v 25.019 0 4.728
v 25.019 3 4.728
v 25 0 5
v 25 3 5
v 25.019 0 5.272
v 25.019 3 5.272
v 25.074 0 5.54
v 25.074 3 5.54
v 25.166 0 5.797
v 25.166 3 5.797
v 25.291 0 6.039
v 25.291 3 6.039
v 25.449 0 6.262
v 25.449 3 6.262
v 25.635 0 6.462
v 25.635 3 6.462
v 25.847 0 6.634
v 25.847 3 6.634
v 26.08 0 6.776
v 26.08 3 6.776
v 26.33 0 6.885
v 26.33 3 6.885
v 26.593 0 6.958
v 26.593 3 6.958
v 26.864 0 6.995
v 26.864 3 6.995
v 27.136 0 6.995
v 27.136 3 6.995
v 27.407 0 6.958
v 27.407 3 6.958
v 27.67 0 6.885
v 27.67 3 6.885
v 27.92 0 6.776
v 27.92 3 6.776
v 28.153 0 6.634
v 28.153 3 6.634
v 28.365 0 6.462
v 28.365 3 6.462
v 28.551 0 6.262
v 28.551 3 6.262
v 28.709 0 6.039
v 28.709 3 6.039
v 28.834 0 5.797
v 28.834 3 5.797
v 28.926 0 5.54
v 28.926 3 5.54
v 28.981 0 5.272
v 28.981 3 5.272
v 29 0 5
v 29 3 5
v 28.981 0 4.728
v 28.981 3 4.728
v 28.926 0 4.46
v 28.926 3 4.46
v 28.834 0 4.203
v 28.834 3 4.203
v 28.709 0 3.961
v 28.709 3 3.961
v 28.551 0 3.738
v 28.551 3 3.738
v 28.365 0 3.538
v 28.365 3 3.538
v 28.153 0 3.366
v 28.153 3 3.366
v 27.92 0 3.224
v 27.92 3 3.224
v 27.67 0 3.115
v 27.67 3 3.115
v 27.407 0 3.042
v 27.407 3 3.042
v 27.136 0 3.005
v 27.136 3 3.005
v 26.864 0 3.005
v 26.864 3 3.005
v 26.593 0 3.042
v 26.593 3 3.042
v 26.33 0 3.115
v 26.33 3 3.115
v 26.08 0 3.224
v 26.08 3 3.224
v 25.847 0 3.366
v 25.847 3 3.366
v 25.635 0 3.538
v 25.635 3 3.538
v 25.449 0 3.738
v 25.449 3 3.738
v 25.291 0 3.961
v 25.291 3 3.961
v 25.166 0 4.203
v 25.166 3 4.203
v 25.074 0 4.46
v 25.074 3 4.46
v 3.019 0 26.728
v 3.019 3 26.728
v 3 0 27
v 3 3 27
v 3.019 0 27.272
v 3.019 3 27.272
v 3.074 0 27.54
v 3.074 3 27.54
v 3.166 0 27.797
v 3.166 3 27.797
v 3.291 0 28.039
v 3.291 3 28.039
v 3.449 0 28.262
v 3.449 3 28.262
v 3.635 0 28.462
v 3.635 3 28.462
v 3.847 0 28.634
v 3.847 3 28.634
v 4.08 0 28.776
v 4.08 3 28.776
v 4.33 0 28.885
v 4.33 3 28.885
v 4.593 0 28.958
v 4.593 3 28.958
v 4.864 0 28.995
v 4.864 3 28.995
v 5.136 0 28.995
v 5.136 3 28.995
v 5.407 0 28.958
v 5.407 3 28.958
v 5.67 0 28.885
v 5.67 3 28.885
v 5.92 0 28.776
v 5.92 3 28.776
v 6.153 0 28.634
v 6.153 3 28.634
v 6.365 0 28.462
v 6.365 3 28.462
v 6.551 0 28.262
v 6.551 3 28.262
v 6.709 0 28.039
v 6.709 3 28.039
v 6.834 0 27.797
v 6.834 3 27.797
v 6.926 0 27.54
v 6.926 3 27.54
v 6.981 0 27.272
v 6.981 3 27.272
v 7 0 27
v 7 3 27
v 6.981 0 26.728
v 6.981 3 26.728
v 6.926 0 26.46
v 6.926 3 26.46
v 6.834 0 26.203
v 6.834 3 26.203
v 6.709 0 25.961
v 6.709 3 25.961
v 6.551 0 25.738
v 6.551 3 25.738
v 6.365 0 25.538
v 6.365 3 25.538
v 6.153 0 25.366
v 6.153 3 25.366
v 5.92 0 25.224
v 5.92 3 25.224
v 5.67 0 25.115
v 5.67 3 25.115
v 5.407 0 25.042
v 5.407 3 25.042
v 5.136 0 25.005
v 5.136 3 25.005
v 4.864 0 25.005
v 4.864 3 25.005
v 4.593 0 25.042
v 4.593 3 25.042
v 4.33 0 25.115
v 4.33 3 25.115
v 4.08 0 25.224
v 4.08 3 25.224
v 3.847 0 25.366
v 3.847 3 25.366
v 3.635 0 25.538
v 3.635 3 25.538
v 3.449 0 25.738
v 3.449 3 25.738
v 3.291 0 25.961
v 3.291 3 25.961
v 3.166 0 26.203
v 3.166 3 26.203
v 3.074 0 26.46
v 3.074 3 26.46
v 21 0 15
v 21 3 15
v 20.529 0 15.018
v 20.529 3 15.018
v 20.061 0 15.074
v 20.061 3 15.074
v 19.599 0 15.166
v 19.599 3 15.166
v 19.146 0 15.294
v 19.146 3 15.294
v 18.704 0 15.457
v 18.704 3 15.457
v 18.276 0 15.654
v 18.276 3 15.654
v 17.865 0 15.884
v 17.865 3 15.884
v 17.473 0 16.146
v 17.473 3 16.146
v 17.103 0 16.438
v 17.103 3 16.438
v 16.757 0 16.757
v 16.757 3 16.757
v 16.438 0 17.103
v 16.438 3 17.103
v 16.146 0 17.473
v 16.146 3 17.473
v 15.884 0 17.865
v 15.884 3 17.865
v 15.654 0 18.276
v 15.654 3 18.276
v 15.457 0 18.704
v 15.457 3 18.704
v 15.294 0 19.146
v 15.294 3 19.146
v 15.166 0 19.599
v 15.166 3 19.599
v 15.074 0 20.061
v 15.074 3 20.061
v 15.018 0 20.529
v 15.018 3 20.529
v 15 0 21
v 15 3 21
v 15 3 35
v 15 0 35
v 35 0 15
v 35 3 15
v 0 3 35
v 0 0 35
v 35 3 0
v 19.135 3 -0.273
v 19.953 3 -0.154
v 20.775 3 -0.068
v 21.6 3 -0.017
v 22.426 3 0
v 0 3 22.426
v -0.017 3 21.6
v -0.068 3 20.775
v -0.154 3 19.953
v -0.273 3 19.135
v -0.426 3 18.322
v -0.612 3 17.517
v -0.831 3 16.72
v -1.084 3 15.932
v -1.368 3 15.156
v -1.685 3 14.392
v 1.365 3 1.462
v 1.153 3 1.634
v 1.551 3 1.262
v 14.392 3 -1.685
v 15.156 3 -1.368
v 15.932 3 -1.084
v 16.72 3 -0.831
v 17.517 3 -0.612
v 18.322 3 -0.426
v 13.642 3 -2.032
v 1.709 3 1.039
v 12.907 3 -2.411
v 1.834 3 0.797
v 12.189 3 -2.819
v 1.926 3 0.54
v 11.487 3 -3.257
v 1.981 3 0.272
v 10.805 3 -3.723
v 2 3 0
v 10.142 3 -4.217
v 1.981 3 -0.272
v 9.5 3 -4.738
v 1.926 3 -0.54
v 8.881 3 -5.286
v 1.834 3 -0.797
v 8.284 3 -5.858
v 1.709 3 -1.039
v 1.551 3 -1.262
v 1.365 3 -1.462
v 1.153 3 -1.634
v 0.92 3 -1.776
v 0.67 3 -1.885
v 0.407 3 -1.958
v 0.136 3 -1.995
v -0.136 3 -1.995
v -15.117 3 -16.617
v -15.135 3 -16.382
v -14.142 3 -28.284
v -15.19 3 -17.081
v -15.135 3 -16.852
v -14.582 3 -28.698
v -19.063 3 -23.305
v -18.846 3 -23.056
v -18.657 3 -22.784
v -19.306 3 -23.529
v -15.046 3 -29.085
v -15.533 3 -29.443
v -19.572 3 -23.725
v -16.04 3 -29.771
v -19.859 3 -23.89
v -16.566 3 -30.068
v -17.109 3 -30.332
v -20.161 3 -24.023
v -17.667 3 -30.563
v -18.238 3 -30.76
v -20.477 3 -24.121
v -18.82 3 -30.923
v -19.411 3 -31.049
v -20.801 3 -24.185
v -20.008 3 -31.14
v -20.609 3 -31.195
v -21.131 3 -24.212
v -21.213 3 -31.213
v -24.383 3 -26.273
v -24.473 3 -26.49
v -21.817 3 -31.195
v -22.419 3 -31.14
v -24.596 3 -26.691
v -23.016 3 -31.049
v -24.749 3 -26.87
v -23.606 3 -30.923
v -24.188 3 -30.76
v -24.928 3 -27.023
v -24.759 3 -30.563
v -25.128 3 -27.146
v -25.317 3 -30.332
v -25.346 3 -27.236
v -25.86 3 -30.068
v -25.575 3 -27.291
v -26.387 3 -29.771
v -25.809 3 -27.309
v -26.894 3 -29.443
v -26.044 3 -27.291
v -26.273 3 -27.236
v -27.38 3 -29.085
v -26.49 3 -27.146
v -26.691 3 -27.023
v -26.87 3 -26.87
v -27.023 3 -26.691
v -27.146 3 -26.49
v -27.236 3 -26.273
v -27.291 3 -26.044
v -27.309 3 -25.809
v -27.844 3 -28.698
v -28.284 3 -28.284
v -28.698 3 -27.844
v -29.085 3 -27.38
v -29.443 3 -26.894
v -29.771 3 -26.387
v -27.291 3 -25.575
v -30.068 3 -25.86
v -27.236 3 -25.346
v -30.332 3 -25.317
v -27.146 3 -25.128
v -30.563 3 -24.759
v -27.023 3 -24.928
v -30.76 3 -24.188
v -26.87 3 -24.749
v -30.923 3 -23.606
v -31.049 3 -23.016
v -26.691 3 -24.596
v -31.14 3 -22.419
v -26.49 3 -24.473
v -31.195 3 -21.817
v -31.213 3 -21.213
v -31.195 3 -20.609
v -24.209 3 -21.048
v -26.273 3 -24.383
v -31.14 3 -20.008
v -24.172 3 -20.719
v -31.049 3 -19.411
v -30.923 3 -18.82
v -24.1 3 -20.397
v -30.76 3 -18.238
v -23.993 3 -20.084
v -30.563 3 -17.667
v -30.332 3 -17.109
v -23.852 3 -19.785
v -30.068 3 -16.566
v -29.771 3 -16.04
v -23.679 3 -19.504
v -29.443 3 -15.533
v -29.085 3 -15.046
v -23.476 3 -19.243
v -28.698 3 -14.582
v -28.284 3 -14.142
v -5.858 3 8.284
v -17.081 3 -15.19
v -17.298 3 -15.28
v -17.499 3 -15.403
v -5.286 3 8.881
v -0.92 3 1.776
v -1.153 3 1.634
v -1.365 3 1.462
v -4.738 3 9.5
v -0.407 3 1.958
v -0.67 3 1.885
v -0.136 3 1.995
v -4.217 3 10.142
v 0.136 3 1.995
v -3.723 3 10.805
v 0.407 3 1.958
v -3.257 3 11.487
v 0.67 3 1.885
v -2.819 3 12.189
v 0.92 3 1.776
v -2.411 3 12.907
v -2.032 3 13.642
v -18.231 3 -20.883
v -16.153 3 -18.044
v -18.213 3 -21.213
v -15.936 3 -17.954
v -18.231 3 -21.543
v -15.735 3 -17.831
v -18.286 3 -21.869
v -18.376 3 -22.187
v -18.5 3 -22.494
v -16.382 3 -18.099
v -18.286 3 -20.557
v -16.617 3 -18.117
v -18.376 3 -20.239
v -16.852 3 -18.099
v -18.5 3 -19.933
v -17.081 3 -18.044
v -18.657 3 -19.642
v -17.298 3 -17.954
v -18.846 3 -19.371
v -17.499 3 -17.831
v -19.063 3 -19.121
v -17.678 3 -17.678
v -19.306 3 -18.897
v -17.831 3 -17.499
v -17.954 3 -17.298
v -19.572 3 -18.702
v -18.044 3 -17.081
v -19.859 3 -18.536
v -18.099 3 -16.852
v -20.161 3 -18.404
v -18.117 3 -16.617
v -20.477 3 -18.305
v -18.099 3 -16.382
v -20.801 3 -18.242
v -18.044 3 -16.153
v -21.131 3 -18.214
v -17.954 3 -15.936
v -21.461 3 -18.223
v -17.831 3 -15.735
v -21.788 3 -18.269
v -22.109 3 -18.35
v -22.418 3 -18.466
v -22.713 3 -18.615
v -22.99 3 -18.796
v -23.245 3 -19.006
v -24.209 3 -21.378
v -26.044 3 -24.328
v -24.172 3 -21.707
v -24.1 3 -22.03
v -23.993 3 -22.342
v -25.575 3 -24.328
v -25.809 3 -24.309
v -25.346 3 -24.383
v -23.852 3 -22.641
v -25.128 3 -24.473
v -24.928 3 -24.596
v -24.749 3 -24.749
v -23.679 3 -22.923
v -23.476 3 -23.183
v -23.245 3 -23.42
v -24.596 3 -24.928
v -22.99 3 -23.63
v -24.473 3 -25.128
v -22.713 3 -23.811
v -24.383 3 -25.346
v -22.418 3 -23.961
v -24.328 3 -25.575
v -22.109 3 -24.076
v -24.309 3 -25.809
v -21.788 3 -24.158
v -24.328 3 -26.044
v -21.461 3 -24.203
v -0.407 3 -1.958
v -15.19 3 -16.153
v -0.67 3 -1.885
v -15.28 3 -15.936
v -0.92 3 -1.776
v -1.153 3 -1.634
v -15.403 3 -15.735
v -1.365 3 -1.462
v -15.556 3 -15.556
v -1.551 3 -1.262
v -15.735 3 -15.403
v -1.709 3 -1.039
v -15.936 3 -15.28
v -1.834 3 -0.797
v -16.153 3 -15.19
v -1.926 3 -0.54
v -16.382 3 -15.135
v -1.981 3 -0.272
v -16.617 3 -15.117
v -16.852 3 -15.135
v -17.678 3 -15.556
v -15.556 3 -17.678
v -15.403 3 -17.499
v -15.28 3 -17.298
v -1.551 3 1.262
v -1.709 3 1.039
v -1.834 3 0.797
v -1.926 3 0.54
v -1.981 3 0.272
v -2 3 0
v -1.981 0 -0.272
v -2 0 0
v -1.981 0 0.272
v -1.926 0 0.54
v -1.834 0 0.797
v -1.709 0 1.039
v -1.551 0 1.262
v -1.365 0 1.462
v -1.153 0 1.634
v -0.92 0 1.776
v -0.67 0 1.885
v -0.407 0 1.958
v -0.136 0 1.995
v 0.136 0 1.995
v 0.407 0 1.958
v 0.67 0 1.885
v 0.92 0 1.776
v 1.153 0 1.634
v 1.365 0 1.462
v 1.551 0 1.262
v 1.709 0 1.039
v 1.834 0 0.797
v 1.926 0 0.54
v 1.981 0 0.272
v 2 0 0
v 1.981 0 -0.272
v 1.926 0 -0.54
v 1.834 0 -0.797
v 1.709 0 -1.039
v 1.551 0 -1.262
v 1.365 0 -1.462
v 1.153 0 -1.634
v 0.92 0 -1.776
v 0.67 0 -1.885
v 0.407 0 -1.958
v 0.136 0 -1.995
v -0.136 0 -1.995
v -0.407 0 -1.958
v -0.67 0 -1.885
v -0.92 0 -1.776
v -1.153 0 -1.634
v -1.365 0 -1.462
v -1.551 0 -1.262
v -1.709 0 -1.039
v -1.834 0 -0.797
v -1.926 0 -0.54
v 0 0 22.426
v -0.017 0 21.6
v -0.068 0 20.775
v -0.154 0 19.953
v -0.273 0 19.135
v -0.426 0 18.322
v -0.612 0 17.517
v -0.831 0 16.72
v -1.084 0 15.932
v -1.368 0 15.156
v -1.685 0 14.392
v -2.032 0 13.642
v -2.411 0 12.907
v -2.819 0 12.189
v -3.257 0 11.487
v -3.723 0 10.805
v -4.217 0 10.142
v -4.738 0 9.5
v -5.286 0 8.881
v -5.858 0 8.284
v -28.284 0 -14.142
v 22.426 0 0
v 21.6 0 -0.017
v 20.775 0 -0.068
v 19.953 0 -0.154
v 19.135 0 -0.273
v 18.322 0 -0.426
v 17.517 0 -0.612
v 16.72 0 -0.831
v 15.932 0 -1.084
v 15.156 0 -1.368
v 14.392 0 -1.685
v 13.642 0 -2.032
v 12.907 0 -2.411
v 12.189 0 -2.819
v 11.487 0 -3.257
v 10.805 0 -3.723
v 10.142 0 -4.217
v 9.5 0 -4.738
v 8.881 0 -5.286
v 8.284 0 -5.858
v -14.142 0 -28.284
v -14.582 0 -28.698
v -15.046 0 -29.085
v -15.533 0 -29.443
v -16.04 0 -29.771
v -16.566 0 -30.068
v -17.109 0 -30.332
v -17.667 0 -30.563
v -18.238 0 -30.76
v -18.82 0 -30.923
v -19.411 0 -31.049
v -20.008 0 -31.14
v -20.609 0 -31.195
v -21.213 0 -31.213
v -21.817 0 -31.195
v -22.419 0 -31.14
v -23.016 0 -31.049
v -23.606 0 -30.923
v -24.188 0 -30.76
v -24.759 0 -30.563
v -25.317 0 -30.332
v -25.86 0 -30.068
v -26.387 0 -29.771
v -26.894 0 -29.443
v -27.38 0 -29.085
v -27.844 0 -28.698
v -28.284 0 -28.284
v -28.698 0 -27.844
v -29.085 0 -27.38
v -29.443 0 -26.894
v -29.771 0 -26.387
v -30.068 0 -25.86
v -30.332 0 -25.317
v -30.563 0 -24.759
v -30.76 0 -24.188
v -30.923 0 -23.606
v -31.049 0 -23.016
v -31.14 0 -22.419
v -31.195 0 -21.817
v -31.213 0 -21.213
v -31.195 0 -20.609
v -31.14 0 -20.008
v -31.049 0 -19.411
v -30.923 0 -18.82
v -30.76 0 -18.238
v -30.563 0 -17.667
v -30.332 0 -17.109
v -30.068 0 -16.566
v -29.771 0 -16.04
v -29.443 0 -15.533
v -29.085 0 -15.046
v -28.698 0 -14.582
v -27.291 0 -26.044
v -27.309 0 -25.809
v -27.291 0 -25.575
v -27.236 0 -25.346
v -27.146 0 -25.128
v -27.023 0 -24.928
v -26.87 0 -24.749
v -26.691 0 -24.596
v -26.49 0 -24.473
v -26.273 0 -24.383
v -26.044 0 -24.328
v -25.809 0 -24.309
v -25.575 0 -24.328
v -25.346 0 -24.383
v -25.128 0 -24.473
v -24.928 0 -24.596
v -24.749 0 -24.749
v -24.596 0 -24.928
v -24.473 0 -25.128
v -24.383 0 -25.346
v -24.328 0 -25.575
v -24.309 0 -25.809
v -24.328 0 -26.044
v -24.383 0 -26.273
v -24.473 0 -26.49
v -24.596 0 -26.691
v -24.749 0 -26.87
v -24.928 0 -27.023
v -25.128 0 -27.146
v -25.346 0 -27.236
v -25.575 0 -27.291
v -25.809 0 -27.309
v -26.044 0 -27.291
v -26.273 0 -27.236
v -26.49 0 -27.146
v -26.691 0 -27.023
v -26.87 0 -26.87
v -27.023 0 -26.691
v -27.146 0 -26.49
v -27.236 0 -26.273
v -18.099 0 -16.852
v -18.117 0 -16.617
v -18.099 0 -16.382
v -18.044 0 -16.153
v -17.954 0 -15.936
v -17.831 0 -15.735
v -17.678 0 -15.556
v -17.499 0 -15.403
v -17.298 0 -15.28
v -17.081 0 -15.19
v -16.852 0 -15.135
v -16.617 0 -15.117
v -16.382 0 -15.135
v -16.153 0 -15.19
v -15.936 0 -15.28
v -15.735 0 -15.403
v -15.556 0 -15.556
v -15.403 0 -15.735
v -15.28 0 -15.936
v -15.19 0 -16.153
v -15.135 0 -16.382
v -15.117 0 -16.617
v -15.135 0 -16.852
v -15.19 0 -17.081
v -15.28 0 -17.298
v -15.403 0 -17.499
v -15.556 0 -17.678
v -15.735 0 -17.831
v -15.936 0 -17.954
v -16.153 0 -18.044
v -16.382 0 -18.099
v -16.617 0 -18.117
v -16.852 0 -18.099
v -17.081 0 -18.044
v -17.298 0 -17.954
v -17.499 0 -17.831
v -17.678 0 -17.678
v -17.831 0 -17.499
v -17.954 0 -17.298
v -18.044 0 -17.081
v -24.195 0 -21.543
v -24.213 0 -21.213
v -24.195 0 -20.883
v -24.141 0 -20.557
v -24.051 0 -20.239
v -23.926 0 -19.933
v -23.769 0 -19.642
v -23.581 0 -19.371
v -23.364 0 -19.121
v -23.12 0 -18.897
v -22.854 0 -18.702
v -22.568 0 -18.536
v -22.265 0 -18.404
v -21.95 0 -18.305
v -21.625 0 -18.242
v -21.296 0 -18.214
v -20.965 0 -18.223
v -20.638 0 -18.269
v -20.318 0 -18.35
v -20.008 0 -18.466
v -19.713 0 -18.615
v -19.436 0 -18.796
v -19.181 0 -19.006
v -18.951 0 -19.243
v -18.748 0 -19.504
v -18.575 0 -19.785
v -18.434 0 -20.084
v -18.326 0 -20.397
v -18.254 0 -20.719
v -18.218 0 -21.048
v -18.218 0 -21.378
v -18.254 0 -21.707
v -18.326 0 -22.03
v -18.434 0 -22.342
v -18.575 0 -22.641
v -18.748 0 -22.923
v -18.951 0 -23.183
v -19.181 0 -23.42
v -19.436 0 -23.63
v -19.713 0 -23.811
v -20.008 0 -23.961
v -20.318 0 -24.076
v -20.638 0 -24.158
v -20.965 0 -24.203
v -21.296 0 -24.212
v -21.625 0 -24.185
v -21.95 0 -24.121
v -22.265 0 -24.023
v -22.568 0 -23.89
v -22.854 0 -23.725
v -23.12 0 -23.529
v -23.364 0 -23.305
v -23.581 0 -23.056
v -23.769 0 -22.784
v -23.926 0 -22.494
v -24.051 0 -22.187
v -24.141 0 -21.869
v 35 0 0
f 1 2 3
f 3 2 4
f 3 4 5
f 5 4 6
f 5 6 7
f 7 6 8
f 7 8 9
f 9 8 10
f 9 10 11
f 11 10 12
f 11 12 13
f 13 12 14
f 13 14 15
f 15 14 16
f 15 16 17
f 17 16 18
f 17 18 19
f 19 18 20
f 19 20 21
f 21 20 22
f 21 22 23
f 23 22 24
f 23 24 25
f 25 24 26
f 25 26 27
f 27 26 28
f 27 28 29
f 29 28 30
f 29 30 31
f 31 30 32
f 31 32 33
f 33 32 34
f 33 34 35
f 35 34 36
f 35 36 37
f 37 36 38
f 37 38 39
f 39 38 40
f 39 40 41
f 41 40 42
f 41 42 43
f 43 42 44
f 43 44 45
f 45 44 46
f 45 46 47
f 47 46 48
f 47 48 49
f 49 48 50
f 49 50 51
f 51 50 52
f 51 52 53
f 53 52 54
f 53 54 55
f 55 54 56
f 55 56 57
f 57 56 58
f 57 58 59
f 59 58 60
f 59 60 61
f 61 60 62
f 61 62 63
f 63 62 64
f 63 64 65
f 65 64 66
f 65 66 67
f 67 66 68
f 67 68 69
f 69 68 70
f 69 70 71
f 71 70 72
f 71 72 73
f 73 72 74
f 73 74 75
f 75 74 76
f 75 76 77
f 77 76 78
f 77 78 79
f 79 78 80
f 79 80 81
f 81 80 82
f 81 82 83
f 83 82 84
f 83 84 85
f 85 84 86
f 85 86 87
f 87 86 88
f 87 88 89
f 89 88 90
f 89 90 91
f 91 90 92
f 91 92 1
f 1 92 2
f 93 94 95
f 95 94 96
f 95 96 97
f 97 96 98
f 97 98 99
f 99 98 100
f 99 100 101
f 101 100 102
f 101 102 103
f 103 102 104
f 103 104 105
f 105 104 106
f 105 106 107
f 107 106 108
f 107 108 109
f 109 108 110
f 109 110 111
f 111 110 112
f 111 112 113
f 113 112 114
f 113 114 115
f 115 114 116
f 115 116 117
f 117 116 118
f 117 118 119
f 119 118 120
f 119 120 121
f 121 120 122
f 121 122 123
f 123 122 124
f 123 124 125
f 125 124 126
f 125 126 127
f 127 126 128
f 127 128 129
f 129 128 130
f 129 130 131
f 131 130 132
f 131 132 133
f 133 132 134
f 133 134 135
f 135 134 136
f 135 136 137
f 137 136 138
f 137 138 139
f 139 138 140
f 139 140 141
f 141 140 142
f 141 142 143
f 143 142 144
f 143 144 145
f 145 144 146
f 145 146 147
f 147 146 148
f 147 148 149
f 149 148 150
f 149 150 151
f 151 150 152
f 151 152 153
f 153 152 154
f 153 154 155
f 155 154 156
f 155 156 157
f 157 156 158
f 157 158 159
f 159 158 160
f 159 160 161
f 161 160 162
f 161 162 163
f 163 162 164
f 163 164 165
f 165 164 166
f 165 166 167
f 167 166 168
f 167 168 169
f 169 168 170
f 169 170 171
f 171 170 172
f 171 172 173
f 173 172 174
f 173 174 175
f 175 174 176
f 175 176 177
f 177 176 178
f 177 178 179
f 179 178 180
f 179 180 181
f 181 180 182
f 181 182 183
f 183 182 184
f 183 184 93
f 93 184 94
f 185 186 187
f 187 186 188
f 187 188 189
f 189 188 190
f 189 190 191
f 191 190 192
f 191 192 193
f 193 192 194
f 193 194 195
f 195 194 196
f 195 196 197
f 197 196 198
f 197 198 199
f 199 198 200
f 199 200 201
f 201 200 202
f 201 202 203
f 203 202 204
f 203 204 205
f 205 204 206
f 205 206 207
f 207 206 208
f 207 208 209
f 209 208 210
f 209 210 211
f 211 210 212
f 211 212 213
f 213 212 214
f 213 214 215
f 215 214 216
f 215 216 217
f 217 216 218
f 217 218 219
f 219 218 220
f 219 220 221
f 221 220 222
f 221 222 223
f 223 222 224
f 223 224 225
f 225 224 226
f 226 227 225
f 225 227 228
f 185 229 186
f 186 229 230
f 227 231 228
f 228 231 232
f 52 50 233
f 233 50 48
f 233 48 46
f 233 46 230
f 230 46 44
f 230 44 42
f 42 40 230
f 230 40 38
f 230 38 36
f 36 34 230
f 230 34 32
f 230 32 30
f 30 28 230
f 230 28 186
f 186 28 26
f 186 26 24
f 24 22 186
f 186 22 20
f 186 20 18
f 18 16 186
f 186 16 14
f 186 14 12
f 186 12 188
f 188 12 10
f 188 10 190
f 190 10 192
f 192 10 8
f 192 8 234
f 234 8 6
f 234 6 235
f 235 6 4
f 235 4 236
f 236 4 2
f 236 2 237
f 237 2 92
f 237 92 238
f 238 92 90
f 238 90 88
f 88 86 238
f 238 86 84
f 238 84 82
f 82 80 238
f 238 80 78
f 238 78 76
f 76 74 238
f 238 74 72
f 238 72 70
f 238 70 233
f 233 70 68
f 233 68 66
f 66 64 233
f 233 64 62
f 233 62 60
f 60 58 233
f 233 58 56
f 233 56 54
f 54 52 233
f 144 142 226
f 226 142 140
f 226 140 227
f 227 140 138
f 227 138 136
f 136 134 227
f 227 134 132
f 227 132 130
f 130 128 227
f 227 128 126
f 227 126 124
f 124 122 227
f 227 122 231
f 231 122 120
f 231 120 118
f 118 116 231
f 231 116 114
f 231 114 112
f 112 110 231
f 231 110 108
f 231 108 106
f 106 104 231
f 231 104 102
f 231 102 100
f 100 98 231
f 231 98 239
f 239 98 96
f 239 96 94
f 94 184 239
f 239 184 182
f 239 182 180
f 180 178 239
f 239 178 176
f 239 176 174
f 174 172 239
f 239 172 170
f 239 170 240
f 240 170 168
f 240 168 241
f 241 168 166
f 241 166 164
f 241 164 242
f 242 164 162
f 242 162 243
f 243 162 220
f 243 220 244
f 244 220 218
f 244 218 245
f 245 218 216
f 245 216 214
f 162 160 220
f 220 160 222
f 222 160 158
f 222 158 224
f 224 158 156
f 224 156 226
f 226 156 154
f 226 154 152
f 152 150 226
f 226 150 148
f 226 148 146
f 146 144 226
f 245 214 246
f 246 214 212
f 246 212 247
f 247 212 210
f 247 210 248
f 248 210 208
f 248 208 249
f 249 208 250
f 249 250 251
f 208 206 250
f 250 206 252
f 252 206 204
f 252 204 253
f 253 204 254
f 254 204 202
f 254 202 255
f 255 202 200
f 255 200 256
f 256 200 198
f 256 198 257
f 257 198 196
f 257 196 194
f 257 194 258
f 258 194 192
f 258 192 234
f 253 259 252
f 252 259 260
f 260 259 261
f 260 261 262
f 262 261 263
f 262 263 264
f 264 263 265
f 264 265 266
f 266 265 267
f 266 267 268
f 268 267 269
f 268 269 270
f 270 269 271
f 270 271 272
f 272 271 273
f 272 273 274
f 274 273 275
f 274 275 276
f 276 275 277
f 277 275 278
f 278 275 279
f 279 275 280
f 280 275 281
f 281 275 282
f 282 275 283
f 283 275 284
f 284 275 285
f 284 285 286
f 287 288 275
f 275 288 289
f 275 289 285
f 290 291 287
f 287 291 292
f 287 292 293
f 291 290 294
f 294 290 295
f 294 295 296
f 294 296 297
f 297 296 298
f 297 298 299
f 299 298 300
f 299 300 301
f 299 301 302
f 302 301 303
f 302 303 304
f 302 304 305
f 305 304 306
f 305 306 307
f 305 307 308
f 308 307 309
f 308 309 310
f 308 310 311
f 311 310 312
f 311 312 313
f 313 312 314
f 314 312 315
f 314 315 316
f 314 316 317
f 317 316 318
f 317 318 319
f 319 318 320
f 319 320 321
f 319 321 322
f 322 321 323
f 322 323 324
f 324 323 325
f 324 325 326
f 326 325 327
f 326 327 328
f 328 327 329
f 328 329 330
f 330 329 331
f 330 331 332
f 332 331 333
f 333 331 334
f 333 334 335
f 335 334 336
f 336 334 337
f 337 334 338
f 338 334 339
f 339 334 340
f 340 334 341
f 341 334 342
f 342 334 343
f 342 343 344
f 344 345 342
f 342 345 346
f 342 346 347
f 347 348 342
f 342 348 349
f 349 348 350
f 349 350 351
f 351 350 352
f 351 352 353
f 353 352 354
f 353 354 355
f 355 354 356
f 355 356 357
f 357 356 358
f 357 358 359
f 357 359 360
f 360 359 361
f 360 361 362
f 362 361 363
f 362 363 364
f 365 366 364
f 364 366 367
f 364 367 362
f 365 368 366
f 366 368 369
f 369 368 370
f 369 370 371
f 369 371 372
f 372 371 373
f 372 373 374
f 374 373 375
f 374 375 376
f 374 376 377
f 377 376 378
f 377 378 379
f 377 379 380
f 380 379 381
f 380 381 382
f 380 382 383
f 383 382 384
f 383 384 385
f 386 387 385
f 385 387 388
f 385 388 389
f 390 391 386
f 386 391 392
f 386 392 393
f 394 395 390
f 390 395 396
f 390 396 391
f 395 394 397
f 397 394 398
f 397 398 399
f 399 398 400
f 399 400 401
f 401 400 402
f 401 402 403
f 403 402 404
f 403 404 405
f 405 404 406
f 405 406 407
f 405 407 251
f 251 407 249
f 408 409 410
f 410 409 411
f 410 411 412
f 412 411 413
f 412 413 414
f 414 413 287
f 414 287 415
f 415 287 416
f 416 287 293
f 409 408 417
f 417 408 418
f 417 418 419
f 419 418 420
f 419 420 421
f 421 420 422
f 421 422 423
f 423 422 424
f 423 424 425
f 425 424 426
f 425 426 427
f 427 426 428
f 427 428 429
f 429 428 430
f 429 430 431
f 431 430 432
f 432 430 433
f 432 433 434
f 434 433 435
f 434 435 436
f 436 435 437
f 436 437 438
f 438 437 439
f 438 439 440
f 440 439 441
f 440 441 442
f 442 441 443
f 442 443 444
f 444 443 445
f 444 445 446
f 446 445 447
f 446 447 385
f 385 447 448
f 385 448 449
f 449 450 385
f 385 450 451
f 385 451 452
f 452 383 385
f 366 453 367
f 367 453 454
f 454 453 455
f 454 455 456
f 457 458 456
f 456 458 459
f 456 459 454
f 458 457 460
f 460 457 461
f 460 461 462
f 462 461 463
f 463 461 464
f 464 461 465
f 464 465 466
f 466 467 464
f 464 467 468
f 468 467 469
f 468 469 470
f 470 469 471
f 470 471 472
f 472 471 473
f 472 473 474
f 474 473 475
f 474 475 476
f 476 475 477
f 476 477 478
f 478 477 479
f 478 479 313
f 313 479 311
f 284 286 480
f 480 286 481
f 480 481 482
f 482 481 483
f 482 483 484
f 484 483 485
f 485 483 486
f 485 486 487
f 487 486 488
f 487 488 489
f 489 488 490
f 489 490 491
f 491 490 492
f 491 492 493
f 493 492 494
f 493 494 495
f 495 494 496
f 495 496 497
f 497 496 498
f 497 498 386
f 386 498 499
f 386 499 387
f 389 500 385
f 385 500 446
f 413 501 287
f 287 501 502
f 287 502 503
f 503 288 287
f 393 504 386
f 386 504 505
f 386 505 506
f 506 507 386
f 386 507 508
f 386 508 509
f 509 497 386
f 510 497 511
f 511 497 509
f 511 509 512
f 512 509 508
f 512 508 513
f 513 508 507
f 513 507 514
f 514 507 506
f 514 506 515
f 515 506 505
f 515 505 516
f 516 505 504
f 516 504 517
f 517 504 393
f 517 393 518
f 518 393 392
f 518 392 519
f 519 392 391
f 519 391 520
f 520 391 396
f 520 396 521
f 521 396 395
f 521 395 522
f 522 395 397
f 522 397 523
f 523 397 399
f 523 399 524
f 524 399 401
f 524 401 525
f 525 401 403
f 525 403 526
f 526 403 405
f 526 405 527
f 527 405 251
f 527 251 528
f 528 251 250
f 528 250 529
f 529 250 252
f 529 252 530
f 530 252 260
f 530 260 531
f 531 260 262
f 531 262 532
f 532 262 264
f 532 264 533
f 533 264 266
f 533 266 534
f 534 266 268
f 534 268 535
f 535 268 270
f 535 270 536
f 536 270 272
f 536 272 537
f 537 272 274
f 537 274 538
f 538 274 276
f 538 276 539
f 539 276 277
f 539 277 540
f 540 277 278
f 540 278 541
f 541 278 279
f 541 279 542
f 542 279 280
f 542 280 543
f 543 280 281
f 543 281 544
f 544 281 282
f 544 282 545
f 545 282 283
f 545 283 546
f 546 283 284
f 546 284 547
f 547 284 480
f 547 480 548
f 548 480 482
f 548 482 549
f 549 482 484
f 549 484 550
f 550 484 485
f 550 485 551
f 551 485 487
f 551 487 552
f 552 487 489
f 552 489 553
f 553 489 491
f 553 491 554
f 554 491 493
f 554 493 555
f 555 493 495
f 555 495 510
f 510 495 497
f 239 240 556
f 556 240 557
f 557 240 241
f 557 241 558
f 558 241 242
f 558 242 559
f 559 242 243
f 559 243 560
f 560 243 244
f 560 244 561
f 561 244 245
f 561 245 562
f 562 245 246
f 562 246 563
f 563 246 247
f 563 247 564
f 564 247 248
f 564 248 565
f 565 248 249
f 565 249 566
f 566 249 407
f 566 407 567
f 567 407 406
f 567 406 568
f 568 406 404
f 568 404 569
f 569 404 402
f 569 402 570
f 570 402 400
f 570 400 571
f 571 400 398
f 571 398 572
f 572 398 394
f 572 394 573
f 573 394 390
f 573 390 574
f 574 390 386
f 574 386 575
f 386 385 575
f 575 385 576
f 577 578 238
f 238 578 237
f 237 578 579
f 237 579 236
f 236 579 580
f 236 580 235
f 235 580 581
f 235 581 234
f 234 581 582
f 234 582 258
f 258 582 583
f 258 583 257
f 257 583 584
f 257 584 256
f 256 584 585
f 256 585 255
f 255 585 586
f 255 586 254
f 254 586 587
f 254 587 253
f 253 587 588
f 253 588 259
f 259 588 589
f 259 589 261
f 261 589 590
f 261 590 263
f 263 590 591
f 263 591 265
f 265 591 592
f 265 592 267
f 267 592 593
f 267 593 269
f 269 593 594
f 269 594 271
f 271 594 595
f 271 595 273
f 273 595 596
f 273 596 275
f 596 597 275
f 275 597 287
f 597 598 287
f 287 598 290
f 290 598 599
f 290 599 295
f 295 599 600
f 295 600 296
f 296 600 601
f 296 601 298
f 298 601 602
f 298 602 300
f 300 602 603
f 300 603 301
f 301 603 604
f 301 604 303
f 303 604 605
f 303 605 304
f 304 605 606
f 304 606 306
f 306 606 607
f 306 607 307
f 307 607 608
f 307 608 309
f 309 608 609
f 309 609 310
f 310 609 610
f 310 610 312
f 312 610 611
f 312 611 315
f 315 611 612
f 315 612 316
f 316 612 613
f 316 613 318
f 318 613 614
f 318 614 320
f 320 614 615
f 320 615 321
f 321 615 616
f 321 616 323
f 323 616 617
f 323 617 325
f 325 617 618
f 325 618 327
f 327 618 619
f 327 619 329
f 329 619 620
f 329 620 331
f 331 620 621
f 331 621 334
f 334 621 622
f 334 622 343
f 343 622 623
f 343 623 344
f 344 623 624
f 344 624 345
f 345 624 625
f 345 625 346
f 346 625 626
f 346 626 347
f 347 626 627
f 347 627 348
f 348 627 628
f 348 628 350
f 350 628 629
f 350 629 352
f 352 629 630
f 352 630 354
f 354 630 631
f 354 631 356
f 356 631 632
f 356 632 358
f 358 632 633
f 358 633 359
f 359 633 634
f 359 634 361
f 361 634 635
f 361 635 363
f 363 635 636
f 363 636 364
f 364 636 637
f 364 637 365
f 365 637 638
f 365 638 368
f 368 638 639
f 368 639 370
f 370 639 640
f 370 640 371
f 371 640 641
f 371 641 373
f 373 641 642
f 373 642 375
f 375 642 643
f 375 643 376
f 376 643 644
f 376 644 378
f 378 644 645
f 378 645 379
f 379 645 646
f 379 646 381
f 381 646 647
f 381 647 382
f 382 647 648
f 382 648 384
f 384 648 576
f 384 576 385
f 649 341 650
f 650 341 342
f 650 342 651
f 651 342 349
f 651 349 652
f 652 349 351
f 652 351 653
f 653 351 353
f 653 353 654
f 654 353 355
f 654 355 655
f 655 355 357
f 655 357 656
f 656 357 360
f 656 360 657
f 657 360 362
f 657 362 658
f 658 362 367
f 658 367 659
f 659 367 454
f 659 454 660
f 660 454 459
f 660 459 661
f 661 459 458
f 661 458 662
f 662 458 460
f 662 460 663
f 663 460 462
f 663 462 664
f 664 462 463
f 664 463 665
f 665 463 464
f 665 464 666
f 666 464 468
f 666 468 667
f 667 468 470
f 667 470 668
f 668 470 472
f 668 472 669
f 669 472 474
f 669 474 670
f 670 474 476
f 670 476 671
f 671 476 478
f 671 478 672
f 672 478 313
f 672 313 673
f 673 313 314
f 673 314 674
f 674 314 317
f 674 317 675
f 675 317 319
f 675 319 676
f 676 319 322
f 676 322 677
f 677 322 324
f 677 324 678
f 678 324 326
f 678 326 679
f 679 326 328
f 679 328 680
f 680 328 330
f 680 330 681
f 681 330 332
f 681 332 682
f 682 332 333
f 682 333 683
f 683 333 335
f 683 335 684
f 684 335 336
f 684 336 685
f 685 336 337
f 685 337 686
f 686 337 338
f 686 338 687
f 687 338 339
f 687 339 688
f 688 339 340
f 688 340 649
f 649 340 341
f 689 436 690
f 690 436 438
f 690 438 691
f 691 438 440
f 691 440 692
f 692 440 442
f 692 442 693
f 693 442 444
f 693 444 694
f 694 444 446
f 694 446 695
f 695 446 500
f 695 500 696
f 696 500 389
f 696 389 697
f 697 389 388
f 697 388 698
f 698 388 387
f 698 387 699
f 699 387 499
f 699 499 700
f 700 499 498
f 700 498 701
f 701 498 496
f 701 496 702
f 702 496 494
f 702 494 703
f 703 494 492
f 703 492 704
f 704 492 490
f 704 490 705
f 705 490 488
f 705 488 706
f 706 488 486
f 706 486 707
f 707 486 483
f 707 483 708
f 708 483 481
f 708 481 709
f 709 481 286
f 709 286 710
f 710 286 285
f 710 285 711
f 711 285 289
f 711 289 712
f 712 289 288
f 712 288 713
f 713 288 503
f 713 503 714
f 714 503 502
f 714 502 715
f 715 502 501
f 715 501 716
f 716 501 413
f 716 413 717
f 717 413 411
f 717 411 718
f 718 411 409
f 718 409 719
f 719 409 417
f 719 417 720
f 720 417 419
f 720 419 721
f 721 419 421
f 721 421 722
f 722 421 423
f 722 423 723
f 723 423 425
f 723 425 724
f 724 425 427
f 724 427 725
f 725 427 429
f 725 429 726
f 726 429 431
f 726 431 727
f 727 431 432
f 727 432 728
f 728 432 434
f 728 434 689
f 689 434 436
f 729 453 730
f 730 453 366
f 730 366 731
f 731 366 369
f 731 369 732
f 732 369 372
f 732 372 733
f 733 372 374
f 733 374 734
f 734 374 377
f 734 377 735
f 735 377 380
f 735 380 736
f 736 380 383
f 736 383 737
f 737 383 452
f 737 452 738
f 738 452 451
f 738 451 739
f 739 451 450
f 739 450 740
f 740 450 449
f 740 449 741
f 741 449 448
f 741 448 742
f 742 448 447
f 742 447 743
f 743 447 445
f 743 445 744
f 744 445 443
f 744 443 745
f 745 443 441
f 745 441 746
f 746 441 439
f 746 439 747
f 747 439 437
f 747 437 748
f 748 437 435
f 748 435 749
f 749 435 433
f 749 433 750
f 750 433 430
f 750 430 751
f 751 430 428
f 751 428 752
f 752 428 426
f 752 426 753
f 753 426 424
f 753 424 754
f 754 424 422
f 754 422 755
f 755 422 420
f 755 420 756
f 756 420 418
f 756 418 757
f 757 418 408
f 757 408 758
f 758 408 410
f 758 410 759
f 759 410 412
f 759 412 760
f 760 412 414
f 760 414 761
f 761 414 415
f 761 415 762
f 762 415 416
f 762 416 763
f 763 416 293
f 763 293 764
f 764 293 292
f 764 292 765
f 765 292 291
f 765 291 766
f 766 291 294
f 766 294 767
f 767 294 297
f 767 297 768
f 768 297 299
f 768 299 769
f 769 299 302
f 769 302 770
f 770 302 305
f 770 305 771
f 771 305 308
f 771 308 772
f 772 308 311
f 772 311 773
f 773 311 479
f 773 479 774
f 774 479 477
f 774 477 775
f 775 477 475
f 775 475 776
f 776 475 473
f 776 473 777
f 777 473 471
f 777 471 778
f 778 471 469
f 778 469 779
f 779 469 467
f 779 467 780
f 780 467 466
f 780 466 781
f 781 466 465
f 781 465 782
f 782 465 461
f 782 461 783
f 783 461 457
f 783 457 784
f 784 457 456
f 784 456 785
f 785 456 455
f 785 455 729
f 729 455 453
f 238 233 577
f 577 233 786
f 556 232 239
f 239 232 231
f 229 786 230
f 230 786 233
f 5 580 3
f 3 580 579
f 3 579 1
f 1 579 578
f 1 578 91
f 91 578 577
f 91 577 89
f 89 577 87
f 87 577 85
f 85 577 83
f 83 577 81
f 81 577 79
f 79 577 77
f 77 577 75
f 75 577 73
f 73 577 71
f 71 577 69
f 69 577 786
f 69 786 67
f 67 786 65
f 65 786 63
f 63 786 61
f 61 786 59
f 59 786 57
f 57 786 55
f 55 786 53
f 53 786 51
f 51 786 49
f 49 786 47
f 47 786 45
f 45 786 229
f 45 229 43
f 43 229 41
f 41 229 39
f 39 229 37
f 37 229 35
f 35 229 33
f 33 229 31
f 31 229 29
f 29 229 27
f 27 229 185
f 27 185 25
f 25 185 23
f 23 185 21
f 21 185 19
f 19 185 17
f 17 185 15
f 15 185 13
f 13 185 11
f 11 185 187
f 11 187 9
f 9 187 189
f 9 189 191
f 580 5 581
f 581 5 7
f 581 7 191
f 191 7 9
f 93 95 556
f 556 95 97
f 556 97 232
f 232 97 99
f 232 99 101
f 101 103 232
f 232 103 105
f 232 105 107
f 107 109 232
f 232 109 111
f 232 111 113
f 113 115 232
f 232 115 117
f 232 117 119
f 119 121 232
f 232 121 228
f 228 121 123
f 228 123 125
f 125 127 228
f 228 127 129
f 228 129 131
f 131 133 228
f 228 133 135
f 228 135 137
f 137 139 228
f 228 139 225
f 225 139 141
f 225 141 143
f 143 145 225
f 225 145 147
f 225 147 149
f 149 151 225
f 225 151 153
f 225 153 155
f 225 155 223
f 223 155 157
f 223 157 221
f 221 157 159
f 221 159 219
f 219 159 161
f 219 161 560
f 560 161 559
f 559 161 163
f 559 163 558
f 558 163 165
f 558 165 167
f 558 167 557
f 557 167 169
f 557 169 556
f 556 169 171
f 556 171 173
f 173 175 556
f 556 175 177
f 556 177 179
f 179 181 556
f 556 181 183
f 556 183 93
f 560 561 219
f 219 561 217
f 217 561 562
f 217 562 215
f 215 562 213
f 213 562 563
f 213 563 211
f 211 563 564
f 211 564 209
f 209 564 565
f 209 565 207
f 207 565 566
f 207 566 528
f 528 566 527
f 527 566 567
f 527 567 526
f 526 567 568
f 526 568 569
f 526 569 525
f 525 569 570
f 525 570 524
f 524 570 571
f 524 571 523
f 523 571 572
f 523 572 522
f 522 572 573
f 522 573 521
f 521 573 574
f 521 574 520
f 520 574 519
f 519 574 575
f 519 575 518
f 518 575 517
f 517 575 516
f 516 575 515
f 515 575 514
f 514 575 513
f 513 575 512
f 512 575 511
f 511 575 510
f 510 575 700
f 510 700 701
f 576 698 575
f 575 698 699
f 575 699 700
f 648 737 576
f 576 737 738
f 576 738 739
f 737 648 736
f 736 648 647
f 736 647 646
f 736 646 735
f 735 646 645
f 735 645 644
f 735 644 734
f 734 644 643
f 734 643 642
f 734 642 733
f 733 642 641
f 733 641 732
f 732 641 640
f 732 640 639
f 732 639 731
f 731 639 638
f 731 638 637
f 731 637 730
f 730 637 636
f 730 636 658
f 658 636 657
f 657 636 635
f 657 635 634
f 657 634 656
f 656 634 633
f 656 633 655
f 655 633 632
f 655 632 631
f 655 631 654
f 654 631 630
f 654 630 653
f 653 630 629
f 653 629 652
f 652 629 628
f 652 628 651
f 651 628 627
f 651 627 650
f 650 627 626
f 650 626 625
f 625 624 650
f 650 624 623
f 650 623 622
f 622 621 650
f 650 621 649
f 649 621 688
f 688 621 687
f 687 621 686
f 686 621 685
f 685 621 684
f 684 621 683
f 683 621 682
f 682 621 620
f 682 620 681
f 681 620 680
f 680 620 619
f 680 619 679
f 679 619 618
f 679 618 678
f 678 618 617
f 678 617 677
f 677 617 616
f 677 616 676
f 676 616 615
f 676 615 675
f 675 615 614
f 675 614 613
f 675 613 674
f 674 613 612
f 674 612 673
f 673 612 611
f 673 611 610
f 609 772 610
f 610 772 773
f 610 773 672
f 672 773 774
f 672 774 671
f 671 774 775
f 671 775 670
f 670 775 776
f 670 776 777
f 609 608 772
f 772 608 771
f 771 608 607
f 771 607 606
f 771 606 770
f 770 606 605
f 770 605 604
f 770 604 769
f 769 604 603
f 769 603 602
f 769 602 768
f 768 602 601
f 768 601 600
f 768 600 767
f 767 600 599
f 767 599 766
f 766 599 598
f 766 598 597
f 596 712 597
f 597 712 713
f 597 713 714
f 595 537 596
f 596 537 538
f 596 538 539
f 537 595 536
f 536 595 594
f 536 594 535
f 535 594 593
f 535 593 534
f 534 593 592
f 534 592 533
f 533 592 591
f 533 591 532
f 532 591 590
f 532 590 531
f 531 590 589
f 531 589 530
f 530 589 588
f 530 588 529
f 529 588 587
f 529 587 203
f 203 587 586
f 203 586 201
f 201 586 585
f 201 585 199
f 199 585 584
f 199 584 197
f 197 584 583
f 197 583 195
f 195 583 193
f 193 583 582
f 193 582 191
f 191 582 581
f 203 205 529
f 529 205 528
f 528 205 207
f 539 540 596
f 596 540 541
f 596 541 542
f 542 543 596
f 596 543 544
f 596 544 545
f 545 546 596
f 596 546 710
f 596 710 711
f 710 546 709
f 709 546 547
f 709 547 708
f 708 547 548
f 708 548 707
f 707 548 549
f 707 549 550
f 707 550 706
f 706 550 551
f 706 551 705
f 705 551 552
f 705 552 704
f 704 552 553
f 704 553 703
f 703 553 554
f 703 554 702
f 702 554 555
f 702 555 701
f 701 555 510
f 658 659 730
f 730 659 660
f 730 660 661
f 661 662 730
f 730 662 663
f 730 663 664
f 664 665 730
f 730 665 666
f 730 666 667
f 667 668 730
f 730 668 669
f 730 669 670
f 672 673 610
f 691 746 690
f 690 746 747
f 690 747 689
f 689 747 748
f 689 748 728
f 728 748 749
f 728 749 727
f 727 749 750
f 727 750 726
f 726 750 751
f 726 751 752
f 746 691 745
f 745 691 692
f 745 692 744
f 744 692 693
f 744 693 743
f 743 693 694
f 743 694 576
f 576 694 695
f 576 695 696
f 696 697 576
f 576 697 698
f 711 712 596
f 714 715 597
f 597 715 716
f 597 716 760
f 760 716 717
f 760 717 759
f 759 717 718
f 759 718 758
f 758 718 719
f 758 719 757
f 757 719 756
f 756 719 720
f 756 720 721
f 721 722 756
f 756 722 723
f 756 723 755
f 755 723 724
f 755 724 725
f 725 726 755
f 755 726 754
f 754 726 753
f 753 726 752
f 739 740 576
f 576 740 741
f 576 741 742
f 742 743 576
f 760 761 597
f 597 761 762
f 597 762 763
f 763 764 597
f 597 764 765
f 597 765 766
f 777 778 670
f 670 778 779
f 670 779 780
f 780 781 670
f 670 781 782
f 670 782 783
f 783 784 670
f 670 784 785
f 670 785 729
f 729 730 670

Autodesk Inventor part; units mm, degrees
ref_plane "YZ Plane" through (0, 0, 0) normal (1, 0, 0) x (0, 1, 0)
ref_plane "XZ Plane" through (0, 0, 0) normal (0, 1, 0) x (-1, 0, 0)
ref_plane "XY Plane" through (0, 0, 0) normal (0, 0, 1) x (1, 0, 0)
sketch "Sketch23" plane through (0, 0, 0) normal (0, 1, 0) x (-1, 0, 0)
  line L0 (0, -7) -> (0, 42) projected
  line L1 (7, 0) -> (-42, 0) projected
  line L2 (0, 0) -> (-35, 0)
  line L3 (-35, 0) -> (-35, 35)
  line L4 (-35, 35) -> (0, 35)
  line L5 (0, 35) -> (0, 0)
  line L6 (0, 0) -> (-35, 35) construction
  point P0 (0, 0)
  dimension "d213" = 35
  dimension "d214" = 35
extrude "Extrusion14" add sketch "Sketch23" along normal blind 3
sketch "Sketch24" plane through (0, 3, 0) normal (0, 1, 0) x (1, 0, 0)
  line L0 (35, 0) -> (0, 0) projected
  line L1 (0, 0) -> (0, -35) projected
  line L2 (0, -35) -> (35, -35) projected
  line L3 (35, -35) -> (35, 0) projected
  line L4 (-41.7276, 41.7276) -> (35, -35) construction
  line L5 (-35.3553, 21.2132) -> (-21.2132, 35.3553)
  line L6 (-21.2132, 35.3553) -> (14.1421, 0)
  line L7 (35, 0) -> (0, 0) projected
  line L8 (0, -14.1421) -> (-35.3553, 21.2132)
  line L9 (-23.915, -23.915) -> (42.6519, 42.6519) construction
  dimension "d217" = 45
  dimension "d218" = 20
  dimension "d219" = 40
extrude "Extrusion15" add sketch "Sketch24" against normal blind 3 contours L0 L1 L8 L5 L6
sketch "Sketch36" plane through (0, 3, 0) normal (0, 1, 0) x (1, 0, 0)
  line L0 (-35.3553, 21.2132) -> (0, -14.1421) projected
  line L1 (14.1421, 0) -> (-21.2132, 35.3553) projected
  line L2 (-21.2132, 35.3553) -> (-35.3553, 21.2132) projected
  line L3 (-24.0416, 32.5269) -> (-32.5269, 24.0416) projected
  line L4 (20, -20) -> (32, -20) projected
  line L5 (-18.4468, 18.4468) -> (20, -20) construction
  line L6 (-49.4264, 0) -> (49.0711, 0) projected
  line L7 (0, 49.4264) -> (0, -49.0711) projected
  line L8 (35, 0) -> (14.1421, 0) projected
  line L9 (0, -14.1421) -> (0, -35) projected
  line L10 (35, -35) -> (35, 0) projected
  line L11 (0, -35) -> (35, -35) projected
  point P0 (0, 0)
  point P1 (-18.3848, 9.8995)
  point P2 (0, -32)
  point P3 (32, 0)
  point P4 (-9.8995, 18.3848)
  point P5 (-21.2132, 21.2132)
  dimension "d311" = 45
  dimension "d312" = 10
hole "Hole17" at (-21.2132, 3, -21.2132) direction (0, -1, 0) diameter 6 end through all
sketch "Sketch37" plane through (0, 3, 0) normal (0, 1, 0) x (1, 0, 0)
  circle A0 centre (-21.2132, 21.2132) radius 3 projected
  line L0 (14.1421, 0) -> (-21.2132, 35.3553) projected
  line L1 (-21.2132, 35.3553) -> (-35.3553, 21.2132) projected
  line L2 (-35.3553, 21.2132) -> (0, -14.1421) projected
  line L3 (-34.5369, 34.5369) -> (-7.0609, 7.0609) construction
  line L4 (-38.7653, 3.6611) -> (1.6595, 44.0859) construction
  line L5 (-53.5184, 0) -> (49.7531, 0) projected
  line L6 (0, 59.903) -> (0, -50.8172) projected
  line L7 (35, 0) -> (14.1421, 0) projected
  line L8 (0, -14.1421) -> (0, -35) projected
  line L9 (35, -35) -> (35, 0) projected
  line L10 (0, -35) -> (35, -35) projected
  point P0 (0, 0)
  point P1 (32, 0)
  point P2 (0, -32)
  point P3 (-25.8094, 25.8094)
  point P4 (-16.617, 16.617)
  dimension "d321" = 45
  dimension "d322" = 45
  dimension "d323" = 6.5
  dimension "d324" = 6.5
hole "Hole18" at (-25.8094, 3, -25.8094) at (-16.617, 3, -16.617) direction (0, -1, 0) diameter 3 end through all
fillet "Fillet15" radius 10 2 edges at (-35.3553, 1.5, -21.2132) (-21.2132, 1.5, -35.3553)
fillet "Fillet18" radius 20 2 edges at (14.1421, 1.5, 0) (0, 1.5, 14.1421)
sketch "Sketch39" plane through (0, 3, 0) normal (0, 1, 0) x (1, 0, 0)
  circle A0 centre (-21.2132, 21.2132) radius 3 projected
  circle A1 centre (-16.617, 16.617) radius 1.5 projected
  circle A2 centre (-25.8094, 25.8094) radius 1.5 projected
  arc A3 (-14.1421, 28.2843) -> (-28.2843, 14.1421) centre (-21.2132, 21.2132) ccw projected
  line L0 (-28.2843, 14.1421) -> (-5.8579, -8.2843) projected
  arc A4 (0, -22.4264) -> (-5.8579, -8.2843) centre (-20, -22.4264) ccw projected
  line L1 (0, -22.4264) -> (0, -35) projected
  line L2 (35, 0) -> (22.4264, 0) projected
  arc A5 (8.2843, 5.8579) -> (22.4264, 0) centre (22.4264, 20) ccw projected
  line L3 (8.2843, 5.8579) -> (-14.1421, 28.2843) projected
  line L4 (26.8786, -26.8786) -> (-35.1686, 35.1686) construction
  line L5 (-58.6564, 0) -> (50.6094, 0) projected
  line L6 (0, 49.4264) -> (0, -49.0711) projected
  line L7 (-9.3628, 33.0636) -> (-43.047, -0.6206) construction
  line L8 (0, -35) -> (35, -35) projected
  line L9 (35, -35) -> (35, 0) projected
  point P0 (0, 0)
  point P1 (0, -32)
  point P2 (32, 0)
  point P3 (0, 0)
  dimension "d339" = 45
  dimension "d340" = 30
hole "Hole19" at (0, 3, 0) direction (0, -1, 0) diameter 4 end through all
sketch "Sketch40" plane through (0, 3, 0) normal (0, 1, 0) x (1, 0, 0)
  circle A0 centre (0, 0) radius 2 projected
  circle A1 centre (-25.8094, 25.8094) radius 1.5 projected
  circle A2 centre (-16.617, 16.617) radius 1.5 projected
  circle A3 centre (-21.2132, 21.2132) radius 3 projected
  arc A4 (-14.1421, 28.2843) -> (-28.2843, 14.1421) centre (-21.2132, 21.2132) ccw projected
  line L0 (-28.2843, 14.1421) -> (-5.8579, -8.2843) projected
  arc A5 (0, -22.4264) -> (-5.8579, -8.2843) centre (-20, -22.4264) ccw projected
  line L1 (0, -22.4264) -> (0, -35) projected
  line L2 (0, -35) -> (35, -35) projected
  line L3 (35, -35) -> (35, 0) projected
  line L4 (35, 0) -> (22.4264, 0) projected
  arc A6 (8.2843, 5.8579) -> (22.4264, 0) centre (22.4264, 20) ccw projected
  line L5 (8.2843, 5.8579) -> (-14.1421, 28.2843) projected
  line L6 (35, -35) -> (15, -35)
  line L7 (15, -35) -> (15, -15)
  line L8 (15, -15) -> (35, -15)
  line L9 (35, -15) -> (35, -35)
  line L10 (0, -35) -> (35, -35) projected
  line L11 (35, -35) -> (35, 0) projected
  point P0 (0, 0)
  dimension "d394" = 15
  dimension "d395" = 15
extrude "Extrusion19" cut sketch "Sketch40" against normal blind 10 contours L3 L2 L7 L8
fillet "Fillet19" radius 6 1 edges at (15, 1.5, 15)
sketch "Sketch44" plane through (0, 3, 0) normal (0, 1, 0) x (1, 0, 0)
  line L0 (15, -35) -> (15, -21) projected
  arc A0 (21, -15) -> (15, -21) centre (21, -21) ccw projected
  line L1 (21, -15) -> (35, -15) projected
  line L2 (35, 0) -> (22.4264, 0) projected
  arc A1 (8.2843, 5.8579) -> (22.4264, 0) centre (22.4264, 20) ccw projected
  line L3 (8.2843, 5.8579) -> (-14.1421, 28.2843) projected
  arc A2 (-14.1421, 28.2843) -> (-28.2843, 14.1421) centre (-21.2132, 21.2132) ccw projected
  line L4 (-28.2843, 14.1421) -> (-5.8579, -8.2843) projected
  arc A3 (0, -22.4264) -> (-5.8579, -8.2843) centre (-20, -22.4264) ccw projected
  line L5 (0, -22.4264) -> (0, -35) projected
  circle A4 centre (-21.2132, 21.2132) radius 3 projected
  circle A5 centre (-16.617, 16.617) radius 1.5 projected
  circle A6 centre (-25.8094, 25.8094) radius 1.5 projected
  circle A7 centre (0, 0) radius 2 projected
  line L6 (35, -15) -> (35, 0) projected
  line L7 (0, -35) -> (15, -35) projected
  point P0 (0, 0)
  point P1 (27, -5)
  point P2 (5, -27)
  dimension "d383" = 5
  dimension "d385" = 5
hole "Hole22" at (27, 3, 5) at (5, 3, 27) direction (0, -1, 0) diameter 4 end through all
properties part number "quarter_upper"
